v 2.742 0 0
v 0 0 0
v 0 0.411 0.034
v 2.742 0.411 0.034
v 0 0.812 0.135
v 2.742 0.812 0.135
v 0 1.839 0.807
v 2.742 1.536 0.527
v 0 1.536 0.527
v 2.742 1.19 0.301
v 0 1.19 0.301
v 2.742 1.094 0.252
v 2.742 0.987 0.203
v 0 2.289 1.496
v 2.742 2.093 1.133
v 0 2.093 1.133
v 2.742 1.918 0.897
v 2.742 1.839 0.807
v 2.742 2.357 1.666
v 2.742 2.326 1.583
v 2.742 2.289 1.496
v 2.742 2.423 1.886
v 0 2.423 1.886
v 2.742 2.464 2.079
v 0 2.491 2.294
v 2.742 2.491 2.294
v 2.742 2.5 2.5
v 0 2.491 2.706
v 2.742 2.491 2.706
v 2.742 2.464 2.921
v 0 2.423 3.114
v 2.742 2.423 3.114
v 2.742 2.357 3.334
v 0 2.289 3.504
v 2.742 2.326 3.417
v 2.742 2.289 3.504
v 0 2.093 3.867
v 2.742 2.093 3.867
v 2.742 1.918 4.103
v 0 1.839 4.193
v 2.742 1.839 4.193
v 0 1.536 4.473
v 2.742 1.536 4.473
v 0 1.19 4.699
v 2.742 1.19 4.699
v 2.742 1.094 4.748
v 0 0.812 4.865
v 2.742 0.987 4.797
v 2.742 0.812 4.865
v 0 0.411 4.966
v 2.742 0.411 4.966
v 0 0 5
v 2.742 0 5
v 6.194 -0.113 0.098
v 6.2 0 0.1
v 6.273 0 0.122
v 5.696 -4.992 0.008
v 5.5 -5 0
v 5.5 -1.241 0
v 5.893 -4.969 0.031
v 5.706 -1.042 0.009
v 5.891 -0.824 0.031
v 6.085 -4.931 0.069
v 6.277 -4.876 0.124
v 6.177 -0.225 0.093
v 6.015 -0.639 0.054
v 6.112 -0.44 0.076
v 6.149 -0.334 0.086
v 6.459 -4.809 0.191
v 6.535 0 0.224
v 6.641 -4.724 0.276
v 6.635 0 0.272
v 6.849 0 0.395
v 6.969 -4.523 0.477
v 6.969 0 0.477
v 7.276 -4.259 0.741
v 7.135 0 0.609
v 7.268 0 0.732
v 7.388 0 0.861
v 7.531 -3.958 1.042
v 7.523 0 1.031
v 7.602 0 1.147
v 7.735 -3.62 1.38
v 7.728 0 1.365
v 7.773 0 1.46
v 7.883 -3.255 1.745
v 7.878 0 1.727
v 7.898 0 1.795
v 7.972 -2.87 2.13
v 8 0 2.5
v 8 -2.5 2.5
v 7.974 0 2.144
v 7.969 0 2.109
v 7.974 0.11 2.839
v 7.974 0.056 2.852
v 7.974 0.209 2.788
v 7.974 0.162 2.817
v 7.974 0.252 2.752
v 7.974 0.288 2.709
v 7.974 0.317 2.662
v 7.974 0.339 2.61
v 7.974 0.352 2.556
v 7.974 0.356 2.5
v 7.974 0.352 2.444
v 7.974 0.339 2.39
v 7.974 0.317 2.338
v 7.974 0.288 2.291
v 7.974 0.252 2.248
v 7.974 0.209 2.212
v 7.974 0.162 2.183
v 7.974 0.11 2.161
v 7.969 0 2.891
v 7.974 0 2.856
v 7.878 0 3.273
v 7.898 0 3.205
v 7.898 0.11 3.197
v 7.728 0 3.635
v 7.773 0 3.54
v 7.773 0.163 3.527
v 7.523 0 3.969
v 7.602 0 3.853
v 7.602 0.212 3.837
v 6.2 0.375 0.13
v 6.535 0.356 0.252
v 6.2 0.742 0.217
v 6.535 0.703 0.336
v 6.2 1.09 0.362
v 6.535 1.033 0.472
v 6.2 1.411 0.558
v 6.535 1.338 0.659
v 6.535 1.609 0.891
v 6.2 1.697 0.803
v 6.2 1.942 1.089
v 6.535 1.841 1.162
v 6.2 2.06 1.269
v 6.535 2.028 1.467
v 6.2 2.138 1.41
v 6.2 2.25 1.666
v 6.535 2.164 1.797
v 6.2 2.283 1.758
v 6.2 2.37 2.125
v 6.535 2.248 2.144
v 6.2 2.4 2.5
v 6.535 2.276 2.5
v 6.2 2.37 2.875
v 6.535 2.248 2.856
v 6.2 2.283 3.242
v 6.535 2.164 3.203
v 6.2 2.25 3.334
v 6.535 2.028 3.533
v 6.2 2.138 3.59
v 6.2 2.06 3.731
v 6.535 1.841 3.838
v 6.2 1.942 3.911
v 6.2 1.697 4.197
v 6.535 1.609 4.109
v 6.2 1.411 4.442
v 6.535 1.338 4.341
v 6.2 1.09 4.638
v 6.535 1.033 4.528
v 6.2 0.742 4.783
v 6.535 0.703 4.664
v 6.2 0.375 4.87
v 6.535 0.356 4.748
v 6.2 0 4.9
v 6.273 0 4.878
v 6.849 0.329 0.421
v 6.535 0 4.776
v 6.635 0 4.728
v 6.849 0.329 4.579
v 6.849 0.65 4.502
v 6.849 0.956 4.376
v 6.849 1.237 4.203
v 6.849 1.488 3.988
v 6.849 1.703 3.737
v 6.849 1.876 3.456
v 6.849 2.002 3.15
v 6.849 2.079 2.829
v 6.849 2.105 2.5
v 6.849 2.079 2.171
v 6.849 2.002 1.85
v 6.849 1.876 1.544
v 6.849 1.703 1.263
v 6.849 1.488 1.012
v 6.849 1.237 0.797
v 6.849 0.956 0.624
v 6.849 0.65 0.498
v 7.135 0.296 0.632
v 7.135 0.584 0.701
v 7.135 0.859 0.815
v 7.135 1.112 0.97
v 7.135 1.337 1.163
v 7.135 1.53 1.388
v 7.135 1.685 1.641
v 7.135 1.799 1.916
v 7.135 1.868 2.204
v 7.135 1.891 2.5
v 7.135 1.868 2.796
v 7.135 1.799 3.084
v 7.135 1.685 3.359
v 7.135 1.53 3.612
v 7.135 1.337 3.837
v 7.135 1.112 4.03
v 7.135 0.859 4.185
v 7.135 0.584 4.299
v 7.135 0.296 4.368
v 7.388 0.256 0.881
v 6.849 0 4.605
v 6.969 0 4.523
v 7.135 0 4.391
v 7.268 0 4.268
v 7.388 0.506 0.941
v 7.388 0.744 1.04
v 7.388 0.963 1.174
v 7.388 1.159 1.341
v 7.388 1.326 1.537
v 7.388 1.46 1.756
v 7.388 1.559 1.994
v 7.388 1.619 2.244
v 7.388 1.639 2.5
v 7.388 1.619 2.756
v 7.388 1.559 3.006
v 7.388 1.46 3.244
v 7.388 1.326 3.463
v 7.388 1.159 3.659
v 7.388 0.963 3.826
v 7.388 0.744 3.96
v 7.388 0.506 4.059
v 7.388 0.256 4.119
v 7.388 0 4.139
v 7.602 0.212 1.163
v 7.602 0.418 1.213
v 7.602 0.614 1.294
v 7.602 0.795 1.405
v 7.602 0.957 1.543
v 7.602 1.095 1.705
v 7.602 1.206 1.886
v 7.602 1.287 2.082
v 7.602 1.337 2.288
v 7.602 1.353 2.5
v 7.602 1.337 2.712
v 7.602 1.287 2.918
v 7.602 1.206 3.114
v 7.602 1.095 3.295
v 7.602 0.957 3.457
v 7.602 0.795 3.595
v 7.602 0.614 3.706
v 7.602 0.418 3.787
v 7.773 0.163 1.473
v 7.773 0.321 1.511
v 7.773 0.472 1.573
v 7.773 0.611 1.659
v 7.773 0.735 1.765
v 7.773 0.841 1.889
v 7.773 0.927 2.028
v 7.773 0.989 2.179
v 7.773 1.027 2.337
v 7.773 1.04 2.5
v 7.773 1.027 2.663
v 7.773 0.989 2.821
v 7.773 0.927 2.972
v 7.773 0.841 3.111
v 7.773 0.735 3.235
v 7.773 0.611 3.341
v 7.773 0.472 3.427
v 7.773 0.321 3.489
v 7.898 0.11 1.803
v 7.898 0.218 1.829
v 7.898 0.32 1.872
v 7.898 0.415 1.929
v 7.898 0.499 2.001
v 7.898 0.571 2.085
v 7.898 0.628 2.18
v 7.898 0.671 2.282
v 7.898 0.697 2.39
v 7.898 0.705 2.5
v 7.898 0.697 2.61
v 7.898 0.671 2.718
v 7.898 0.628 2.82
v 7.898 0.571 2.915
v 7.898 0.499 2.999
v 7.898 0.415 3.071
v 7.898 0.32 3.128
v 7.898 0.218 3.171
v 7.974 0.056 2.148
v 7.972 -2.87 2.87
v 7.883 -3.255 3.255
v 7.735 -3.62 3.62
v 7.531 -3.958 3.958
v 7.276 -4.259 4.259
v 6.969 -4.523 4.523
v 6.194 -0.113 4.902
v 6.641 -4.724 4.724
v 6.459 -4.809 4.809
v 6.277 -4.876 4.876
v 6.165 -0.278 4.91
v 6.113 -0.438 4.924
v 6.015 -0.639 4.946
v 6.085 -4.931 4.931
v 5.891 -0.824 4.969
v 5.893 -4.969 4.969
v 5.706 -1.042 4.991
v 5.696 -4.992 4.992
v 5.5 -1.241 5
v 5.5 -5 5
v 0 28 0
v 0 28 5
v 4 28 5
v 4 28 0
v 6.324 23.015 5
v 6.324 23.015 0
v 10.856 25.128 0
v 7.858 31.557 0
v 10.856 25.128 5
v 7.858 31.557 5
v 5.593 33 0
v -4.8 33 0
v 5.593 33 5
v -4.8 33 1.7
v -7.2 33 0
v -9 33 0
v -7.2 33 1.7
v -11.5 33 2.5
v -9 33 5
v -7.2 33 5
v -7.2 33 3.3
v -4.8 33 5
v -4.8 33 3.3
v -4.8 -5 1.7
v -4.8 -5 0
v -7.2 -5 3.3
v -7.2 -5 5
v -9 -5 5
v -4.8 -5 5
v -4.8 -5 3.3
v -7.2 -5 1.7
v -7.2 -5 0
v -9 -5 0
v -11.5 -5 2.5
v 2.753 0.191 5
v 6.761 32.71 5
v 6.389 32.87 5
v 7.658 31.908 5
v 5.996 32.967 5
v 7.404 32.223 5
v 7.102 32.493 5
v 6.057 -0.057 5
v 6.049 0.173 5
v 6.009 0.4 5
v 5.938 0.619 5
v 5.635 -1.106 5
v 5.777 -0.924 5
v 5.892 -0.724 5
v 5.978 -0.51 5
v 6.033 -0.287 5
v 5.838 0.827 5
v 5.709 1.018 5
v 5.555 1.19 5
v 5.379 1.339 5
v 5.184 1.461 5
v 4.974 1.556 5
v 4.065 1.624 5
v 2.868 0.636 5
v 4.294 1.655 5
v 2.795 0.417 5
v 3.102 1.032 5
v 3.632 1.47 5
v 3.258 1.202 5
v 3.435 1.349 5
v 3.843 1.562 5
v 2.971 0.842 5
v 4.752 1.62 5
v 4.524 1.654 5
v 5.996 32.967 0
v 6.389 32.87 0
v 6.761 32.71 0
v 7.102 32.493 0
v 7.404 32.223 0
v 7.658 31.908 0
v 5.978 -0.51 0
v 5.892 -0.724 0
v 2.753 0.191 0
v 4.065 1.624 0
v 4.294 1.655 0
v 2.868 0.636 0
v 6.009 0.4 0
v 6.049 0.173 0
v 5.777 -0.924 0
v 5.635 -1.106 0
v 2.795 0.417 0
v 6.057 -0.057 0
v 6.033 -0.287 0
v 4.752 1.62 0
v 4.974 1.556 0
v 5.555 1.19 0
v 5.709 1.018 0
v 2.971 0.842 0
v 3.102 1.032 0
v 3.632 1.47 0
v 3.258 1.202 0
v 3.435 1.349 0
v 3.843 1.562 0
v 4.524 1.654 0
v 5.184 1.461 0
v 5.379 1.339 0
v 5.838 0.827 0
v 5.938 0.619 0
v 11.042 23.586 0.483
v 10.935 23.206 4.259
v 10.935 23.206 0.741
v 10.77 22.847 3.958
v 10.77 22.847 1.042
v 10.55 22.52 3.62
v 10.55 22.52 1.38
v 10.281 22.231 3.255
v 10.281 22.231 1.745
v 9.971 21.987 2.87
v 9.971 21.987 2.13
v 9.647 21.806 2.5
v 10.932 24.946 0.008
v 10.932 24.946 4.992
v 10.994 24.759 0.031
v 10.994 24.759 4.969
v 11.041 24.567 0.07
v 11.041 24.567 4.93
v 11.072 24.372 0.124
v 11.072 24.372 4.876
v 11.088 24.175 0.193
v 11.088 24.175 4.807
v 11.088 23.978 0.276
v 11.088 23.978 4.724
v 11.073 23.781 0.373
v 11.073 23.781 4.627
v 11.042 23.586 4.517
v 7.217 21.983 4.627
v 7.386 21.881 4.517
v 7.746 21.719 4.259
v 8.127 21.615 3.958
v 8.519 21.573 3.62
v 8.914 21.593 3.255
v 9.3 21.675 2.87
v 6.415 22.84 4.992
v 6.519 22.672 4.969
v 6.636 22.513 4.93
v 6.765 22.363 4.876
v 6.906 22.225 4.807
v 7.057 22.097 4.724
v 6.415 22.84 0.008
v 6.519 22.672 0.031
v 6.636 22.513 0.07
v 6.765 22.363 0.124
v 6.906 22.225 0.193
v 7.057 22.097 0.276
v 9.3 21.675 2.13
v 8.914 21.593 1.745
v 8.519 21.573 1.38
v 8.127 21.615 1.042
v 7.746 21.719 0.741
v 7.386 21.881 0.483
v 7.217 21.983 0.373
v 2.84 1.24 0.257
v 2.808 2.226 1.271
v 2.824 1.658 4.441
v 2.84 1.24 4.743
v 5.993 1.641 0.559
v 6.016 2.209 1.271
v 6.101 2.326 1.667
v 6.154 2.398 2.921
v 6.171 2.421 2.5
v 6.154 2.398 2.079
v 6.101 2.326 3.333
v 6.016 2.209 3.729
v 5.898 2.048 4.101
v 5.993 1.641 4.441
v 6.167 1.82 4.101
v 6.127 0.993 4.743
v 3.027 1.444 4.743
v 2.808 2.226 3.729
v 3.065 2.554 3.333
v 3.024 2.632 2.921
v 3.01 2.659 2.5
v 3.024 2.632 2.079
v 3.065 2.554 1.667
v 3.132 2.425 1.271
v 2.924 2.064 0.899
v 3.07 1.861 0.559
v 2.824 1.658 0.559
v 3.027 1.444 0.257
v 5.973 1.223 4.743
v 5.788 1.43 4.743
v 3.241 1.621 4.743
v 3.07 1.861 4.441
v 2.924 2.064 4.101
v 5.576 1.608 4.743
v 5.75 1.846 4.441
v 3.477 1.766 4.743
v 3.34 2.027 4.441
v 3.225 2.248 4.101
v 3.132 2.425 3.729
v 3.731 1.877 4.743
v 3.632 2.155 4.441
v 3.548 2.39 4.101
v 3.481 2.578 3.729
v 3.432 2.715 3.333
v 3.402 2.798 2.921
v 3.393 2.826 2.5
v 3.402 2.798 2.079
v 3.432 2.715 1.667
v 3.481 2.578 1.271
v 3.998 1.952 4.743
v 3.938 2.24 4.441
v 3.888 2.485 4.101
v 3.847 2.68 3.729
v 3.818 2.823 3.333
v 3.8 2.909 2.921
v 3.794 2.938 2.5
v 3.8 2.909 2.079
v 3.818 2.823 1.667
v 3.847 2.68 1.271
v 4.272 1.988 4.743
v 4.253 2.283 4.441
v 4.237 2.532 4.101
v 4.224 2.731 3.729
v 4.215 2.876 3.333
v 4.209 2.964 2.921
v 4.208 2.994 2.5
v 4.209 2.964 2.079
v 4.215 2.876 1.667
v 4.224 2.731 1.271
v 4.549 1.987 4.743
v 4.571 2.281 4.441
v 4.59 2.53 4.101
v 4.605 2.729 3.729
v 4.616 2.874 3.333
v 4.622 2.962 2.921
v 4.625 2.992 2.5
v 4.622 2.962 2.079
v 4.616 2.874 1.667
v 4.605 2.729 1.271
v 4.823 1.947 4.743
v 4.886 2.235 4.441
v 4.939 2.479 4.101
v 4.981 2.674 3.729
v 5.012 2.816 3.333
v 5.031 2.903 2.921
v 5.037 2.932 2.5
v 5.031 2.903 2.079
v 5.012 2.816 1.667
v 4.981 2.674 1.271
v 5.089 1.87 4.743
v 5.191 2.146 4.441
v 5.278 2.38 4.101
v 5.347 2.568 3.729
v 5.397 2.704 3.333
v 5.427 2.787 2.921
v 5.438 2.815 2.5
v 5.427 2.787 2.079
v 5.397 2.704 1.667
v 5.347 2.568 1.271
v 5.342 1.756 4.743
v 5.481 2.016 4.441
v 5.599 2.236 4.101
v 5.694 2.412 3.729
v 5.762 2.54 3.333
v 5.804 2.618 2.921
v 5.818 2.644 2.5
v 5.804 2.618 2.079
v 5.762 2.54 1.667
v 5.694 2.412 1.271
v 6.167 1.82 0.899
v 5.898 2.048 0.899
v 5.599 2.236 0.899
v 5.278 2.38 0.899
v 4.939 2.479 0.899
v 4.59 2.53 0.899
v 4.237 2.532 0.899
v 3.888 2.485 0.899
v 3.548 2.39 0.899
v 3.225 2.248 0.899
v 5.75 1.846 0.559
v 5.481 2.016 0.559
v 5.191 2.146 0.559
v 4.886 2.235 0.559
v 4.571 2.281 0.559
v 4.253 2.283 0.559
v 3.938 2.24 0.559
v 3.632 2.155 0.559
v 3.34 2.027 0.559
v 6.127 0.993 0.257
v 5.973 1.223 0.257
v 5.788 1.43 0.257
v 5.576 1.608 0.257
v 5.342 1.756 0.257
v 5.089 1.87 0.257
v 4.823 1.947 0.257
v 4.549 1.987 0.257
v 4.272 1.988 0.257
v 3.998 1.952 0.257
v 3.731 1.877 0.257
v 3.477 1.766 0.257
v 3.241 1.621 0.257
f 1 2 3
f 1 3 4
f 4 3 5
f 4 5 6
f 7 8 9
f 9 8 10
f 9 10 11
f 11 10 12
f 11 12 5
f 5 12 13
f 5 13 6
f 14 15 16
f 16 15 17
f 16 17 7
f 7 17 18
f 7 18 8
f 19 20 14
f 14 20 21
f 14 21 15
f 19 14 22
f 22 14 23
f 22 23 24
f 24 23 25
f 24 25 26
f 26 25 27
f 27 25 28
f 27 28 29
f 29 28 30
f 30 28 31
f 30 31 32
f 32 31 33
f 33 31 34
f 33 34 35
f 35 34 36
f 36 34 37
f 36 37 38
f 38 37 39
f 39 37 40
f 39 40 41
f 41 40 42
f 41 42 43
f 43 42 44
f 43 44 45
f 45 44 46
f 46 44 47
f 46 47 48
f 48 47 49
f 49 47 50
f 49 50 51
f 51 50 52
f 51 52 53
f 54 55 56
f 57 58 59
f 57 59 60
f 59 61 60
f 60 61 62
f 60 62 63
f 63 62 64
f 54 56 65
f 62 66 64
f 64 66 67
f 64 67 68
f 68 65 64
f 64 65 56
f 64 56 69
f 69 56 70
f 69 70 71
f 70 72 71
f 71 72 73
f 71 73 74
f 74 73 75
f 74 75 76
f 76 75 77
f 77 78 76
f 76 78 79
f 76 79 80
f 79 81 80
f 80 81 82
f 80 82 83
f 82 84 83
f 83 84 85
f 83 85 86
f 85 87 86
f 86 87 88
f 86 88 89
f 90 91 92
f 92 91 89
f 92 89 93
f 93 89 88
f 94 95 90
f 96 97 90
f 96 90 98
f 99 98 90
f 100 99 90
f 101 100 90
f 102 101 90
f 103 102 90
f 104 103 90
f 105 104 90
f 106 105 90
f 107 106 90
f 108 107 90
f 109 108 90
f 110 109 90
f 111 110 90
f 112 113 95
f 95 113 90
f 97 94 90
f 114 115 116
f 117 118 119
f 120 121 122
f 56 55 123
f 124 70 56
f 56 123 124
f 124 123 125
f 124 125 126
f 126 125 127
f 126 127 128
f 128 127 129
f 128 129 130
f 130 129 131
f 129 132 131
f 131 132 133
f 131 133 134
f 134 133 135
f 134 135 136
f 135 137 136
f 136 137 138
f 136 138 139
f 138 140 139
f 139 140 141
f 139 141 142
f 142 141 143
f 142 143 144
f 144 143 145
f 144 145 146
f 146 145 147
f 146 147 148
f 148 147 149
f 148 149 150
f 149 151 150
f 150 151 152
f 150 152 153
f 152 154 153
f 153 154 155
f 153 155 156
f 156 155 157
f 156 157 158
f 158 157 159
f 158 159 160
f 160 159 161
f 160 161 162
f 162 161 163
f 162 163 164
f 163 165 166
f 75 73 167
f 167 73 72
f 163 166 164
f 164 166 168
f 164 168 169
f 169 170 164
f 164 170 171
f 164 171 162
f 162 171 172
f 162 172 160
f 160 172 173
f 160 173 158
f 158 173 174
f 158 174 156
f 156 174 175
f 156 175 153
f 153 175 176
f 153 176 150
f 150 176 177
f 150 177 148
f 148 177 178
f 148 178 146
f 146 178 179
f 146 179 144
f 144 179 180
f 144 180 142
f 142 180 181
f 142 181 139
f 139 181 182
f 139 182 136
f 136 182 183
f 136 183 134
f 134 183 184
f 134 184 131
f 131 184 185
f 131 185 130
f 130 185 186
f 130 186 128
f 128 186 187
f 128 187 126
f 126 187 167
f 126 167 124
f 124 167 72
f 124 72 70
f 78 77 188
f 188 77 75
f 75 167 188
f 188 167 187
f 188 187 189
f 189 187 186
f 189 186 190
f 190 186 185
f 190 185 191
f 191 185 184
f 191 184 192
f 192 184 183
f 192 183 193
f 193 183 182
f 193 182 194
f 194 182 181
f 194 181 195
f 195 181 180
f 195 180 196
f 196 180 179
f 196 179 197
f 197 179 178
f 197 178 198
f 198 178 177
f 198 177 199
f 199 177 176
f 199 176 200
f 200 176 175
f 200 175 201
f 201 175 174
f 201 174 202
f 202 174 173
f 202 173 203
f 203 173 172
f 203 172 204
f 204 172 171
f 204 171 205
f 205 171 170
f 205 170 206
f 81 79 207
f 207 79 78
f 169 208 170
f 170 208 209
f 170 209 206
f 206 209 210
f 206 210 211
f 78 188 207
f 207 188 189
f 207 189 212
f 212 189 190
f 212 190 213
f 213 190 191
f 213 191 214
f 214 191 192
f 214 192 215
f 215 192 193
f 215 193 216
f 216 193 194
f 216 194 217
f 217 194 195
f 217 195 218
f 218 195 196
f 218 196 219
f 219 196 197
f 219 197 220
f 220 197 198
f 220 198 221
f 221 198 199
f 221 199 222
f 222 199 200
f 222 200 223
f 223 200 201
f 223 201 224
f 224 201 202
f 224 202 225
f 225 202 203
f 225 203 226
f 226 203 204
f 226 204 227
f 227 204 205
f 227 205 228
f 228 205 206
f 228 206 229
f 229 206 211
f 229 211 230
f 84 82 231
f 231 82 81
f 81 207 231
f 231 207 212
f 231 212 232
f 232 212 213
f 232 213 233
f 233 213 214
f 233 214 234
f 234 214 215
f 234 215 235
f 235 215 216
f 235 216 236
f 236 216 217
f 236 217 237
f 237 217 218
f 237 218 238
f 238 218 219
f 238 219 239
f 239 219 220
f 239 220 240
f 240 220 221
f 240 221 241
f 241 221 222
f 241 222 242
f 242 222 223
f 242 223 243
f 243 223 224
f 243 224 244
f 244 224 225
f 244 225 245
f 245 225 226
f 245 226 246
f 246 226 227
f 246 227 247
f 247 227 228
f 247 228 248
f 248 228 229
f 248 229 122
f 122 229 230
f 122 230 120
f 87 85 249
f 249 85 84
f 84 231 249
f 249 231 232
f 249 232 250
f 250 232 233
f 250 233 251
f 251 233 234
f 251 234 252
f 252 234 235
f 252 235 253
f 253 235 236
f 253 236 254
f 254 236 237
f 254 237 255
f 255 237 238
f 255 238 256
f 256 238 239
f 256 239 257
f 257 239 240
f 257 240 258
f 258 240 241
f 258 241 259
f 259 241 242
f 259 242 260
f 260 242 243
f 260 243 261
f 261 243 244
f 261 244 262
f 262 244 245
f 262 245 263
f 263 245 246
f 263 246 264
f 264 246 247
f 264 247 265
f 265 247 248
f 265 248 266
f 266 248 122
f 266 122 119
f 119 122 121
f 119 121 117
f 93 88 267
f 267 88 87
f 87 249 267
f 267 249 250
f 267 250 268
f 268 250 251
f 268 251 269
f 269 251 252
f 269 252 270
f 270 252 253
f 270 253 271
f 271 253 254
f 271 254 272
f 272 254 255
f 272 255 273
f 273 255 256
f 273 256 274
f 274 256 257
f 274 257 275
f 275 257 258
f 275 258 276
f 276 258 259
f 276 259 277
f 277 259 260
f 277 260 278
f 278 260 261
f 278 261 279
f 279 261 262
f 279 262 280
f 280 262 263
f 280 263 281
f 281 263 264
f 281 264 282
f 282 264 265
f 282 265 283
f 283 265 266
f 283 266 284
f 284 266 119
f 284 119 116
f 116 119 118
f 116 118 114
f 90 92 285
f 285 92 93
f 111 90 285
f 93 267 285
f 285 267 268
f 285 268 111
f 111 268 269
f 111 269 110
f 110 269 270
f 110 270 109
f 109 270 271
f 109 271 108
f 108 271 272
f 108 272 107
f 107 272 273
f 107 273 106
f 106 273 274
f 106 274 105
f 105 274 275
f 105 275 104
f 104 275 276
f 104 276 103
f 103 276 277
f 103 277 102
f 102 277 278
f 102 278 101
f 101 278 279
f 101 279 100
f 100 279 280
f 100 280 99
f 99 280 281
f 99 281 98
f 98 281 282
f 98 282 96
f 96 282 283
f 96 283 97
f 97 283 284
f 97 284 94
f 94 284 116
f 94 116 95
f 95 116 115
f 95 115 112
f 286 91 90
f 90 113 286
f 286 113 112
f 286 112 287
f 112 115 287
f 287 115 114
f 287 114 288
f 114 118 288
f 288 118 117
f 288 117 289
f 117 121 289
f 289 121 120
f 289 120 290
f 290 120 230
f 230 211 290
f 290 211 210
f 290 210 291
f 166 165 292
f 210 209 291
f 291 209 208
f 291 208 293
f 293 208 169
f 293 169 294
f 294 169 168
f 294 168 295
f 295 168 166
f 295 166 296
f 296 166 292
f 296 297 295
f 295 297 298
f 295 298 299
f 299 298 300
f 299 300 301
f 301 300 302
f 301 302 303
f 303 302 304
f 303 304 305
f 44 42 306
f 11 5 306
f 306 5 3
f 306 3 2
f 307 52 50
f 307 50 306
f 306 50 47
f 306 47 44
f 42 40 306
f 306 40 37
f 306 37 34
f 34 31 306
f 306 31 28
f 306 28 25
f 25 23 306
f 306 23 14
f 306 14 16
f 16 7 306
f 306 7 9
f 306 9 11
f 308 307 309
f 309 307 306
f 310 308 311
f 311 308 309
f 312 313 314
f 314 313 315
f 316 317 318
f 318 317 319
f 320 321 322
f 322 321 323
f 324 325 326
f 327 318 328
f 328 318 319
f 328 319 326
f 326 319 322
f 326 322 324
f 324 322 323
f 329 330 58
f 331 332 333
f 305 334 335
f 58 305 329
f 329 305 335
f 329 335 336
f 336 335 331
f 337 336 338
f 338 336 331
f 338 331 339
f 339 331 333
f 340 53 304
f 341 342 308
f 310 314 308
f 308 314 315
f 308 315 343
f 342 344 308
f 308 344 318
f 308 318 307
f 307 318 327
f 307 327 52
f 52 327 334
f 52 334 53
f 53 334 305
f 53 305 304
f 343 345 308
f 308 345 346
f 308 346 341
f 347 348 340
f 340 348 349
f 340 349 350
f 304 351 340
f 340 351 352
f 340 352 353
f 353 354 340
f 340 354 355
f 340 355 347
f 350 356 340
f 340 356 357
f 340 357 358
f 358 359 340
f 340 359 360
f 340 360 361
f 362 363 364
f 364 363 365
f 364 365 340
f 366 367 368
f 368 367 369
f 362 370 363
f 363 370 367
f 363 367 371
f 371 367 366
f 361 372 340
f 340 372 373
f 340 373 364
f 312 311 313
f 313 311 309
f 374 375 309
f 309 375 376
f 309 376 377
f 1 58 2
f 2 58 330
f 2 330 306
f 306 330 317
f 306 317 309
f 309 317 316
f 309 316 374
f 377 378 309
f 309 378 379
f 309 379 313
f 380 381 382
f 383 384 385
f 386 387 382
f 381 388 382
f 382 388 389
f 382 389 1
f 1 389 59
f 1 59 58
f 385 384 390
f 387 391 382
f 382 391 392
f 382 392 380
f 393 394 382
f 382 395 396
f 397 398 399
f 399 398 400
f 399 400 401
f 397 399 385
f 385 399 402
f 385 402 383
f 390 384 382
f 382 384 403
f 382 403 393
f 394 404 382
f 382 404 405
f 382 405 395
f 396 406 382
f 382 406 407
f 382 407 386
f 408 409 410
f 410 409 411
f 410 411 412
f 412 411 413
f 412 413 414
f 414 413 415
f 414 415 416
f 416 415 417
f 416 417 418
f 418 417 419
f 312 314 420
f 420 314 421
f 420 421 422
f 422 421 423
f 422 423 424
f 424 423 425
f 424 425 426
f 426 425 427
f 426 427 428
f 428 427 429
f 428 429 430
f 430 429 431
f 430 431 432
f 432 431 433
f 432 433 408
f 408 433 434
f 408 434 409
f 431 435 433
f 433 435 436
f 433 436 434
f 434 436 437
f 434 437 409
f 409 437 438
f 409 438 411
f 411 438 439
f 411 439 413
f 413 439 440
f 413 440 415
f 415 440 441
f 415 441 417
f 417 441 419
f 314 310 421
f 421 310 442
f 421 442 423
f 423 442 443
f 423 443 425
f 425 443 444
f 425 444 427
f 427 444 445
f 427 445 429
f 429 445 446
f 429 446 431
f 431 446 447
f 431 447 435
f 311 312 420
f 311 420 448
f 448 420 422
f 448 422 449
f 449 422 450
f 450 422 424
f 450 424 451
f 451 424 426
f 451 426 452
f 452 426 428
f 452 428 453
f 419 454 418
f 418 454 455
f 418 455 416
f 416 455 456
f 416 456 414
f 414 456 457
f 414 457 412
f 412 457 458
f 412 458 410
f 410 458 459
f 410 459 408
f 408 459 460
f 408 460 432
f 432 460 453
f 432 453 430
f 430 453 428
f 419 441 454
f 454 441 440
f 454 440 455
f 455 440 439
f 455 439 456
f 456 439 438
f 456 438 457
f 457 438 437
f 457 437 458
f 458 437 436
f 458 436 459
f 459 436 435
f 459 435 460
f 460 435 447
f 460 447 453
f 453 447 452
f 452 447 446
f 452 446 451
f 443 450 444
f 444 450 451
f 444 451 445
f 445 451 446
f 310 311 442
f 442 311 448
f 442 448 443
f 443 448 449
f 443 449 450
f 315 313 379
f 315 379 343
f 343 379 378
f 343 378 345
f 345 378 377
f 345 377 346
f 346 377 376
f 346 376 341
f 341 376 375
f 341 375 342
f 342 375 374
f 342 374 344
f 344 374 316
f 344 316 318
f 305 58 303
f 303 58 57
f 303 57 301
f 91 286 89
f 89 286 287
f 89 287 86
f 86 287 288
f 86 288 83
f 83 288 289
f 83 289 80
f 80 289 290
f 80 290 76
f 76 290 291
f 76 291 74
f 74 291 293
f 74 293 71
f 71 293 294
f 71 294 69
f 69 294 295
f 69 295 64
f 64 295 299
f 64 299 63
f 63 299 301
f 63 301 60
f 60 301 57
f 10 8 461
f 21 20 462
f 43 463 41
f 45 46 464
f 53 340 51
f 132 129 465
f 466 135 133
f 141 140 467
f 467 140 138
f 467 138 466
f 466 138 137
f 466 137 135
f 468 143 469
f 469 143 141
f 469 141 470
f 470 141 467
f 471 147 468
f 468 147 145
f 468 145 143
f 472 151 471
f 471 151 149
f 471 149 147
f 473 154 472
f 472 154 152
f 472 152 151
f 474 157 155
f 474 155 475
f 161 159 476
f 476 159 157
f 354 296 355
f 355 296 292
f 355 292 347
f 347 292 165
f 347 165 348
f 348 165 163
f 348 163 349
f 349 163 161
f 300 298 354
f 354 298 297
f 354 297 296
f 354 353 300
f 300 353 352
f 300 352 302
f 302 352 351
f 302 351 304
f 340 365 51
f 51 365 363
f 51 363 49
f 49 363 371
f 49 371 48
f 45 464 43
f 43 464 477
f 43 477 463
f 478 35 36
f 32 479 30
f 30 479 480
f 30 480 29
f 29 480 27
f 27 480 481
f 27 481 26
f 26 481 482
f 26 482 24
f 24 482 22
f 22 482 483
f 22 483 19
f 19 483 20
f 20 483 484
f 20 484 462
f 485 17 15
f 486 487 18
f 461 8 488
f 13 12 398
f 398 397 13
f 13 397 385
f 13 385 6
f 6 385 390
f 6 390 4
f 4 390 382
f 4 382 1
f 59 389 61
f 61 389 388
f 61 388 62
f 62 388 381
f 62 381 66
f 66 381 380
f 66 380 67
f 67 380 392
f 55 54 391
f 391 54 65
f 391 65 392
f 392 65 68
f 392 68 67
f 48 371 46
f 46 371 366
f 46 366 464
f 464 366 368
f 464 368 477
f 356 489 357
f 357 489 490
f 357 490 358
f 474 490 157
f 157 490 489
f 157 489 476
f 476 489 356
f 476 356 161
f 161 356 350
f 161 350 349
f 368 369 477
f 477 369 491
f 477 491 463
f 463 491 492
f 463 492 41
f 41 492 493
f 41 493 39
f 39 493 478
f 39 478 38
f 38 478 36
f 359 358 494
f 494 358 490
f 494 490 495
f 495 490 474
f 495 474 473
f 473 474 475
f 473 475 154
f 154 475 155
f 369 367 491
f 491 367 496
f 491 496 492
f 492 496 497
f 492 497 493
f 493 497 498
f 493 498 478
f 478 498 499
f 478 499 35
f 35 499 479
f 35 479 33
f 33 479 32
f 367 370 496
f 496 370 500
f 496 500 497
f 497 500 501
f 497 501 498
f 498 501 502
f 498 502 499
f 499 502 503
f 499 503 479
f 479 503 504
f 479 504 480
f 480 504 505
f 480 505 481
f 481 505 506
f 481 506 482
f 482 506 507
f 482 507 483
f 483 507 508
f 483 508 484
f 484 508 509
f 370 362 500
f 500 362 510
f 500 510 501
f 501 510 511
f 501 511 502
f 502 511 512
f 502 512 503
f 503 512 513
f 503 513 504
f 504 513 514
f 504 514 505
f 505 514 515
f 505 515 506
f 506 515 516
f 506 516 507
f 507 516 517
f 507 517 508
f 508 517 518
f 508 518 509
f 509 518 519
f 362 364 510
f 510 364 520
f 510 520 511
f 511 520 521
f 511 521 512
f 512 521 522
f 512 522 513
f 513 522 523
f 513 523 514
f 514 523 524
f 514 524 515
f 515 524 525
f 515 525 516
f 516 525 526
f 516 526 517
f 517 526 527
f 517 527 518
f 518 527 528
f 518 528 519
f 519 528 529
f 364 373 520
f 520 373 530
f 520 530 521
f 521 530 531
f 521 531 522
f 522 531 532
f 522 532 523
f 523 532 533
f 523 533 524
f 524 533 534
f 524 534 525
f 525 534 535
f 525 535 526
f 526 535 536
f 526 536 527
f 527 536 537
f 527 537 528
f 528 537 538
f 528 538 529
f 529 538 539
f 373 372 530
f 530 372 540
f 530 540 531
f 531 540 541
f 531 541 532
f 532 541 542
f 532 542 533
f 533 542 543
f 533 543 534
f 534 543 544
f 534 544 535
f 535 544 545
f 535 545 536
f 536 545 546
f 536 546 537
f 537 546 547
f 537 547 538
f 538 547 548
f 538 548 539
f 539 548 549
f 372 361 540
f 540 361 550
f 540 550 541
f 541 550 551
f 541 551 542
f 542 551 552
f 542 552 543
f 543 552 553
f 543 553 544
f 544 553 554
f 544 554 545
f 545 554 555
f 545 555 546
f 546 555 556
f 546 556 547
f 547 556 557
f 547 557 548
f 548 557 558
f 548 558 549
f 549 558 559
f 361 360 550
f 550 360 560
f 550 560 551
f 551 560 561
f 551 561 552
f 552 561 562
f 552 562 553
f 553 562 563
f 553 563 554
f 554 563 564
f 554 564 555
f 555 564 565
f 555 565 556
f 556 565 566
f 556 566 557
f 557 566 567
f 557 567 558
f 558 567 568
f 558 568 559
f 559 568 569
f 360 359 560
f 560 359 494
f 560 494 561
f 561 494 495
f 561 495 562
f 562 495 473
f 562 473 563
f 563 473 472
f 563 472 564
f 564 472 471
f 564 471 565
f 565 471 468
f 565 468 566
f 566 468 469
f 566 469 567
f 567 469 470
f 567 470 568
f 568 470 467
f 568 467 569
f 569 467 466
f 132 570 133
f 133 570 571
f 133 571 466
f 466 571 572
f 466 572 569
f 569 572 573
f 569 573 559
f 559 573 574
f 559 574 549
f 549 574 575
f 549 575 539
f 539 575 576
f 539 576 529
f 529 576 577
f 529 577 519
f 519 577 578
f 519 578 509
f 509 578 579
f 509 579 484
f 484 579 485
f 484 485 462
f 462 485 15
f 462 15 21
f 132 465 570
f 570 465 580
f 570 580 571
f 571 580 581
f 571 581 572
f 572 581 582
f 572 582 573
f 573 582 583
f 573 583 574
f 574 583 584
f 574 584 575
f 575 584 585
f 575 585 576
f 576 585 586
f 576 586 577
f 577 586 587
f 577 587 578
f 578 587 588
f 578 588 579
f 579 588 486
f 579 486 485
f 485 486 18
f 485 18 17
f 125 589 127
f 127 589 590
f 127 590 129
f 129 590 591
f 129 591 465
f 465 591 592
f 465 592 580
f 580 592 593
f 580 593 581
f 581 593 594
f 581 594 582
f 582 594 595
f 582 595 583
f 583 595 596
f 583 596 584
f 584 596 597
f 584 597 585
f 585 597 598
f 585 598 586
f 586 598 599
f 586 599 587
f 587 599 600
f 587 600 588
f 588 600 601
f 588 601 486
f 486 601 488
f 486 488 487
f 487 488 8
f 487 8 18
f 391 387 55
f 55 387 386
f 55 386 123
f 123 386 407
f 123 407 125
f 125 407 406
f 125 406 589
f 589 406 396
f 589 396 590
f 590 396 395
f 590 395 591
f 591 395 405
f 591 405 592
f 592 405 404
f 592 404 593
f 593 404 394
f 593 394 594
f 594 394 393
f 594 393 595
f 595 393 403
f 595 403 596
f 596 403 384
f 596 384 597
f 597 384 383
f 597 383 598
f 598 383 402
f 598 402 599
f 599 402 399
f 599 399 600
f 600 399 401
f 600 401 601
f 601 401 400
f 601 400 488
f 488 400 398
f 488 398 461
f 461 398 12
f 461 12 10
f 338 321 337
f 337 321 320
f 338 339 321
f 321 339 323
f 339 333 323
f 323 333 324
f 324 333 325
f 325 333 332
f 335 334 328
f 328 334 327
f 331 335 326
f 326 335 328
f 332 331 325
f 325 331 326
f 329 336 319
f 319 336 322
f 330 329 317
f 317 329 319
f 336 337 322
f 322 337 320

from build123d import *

# Parameters (mm, degrees)
EXTRUDE_1_DEPTH     = 5
FILLET_1_R          = 2.5
EXTRUDE_2_DEPTH     = 8
FILLET_3_R          = 2.5
SKETCH_5_W          = 1.467751534
SKETCH_5_H          = 4.178210798
SKETCH_5_W_2        = 1.389566385
CUT_EXTRUDE_1_DEPTH = 20
EXTRUDE_3_DEPTH     = 38
SKETCH_7_W          = 2.4
SKETCH_7_H          = 1.7
CUT_EXTRUDE_2_DEPTH = 38


with BuildPart() as part:
    # 草图1 → 凸台-拉伸1 (new body)
    with BuildSketch(Plane.XY):
        Polygon((0, 0), (0, 28), (4, 28), (7.380946094, 20.749537704), (11.912485029, 22.862629012), (7.185351304, 33), (-5, 33), (-5, -5), (8, -5), (8, 0), align=None)
    extrude(amount=EXTRUDE_1_DEPTH)

    # 圆角1
    fillet_1_edges = [part.edges().sort_by_distance(p)[0] for p in [
        (9.646715562, 21.806083358, 0),
        (7.185351304, 33, 2.5),
        (11.912485029, 22.862629012, 2.5),
        (7.380946094, 20.749537704, 2.5),
        (9.646715562, 21.806083358, 5),
    ]]
    fillet(fillet_1_edges, radius=FILLET_1_R - 0.0001)  # a hair under: the kernel refuses the full size

    # 草图3 → 凸台-拉伸2 (add)
    with BuildSketch(Plane(origin=(0, 0, 0), x_dir=(0, 0, -1), z_dir=(1, 0, 0))):
        with BuildLine():
            Line((-5, 0), (0, 0))
            ThreePointArc((0, 0), (-2.5, 2.5), (-5, 0))
        make_face()
    extrude(amount=EXTRUDE_2_DEPTH)

    # 圆角3
    fillet_3_edges = [part.edges().sort_by_distance(p)[0] for p in [
        (8, -2.5, 0),
        (8, -5, 2.5),
        (8, -2.5, 5),
        (8, 2.5, 2.5),
    ]]
    fillet(fillet_3_edges, radius=FILLET_3_R - 0.0001)  # a hair under: the kernel refuses the full size

    # 草图4 → 旋转3 (revolve)
    with BuildSketch(Plane(origin=(4.4, 0, 0), x_dir=(0, 0, -1), z_dir=(1, 0, 0))):
        with BuildLine():
            Line((-5.5, 0), (0.5, 0))
            ThreePointArc((0.5, 0), (-2.5, 3), (-5.5, 0))
        make_face()
    revolve(axis=Axis((4.4, 0, 2.5), (0, 0, -1)))

    # 草图5 → 切除-拉伸1 (cut)
    with BuildSketch(Plane.ZY.offset(5)):
        with Locations((-0.733875767, -0.010051234)):
            Rectangle(SKETCH_5_W, SKETCH_5_H)
        with Locations((5.694783193, -0.010051234)):
            Rectangle(SKETCH_5_W_2, SKETCH_5_H)
    extrude(amount=-CUT_EXTRUDE_1_DEPTH, mode=Mode.SUBTRACT)

    # 草图6 → 凸台-拉伸3 (add)
    with BuildSketch(Plane.XZ.offset(5)):
        Polygon((-5, 2.5), (-5, 3.5), (-7, 3.5), (-7, 5), (-9, 5), (-11.5, 2.5), (-9, 0), (-7, 0), (-7, 1.5), (-5, 1.5), align=None)
    extrude(amount=-EXTRUDE_3_DEPTH)

    # 草图7 → 切除-拉伸2 (cut)
    with BuildSketch(Plane.XZ.offset(5)):
        with Locations((-6, 4.15)):
            Rectangle(SKETCH_7_W, SKETCH_7_H)
        with Locations((-6, 0.85)):
            Rectangle(SKETCH_7_W, SKETCH_7_H)
    extrude(amount=-CUT_EXTRUDE_2_DEPTH, mode=Mode.SUBTRACT)


solid = part.part
